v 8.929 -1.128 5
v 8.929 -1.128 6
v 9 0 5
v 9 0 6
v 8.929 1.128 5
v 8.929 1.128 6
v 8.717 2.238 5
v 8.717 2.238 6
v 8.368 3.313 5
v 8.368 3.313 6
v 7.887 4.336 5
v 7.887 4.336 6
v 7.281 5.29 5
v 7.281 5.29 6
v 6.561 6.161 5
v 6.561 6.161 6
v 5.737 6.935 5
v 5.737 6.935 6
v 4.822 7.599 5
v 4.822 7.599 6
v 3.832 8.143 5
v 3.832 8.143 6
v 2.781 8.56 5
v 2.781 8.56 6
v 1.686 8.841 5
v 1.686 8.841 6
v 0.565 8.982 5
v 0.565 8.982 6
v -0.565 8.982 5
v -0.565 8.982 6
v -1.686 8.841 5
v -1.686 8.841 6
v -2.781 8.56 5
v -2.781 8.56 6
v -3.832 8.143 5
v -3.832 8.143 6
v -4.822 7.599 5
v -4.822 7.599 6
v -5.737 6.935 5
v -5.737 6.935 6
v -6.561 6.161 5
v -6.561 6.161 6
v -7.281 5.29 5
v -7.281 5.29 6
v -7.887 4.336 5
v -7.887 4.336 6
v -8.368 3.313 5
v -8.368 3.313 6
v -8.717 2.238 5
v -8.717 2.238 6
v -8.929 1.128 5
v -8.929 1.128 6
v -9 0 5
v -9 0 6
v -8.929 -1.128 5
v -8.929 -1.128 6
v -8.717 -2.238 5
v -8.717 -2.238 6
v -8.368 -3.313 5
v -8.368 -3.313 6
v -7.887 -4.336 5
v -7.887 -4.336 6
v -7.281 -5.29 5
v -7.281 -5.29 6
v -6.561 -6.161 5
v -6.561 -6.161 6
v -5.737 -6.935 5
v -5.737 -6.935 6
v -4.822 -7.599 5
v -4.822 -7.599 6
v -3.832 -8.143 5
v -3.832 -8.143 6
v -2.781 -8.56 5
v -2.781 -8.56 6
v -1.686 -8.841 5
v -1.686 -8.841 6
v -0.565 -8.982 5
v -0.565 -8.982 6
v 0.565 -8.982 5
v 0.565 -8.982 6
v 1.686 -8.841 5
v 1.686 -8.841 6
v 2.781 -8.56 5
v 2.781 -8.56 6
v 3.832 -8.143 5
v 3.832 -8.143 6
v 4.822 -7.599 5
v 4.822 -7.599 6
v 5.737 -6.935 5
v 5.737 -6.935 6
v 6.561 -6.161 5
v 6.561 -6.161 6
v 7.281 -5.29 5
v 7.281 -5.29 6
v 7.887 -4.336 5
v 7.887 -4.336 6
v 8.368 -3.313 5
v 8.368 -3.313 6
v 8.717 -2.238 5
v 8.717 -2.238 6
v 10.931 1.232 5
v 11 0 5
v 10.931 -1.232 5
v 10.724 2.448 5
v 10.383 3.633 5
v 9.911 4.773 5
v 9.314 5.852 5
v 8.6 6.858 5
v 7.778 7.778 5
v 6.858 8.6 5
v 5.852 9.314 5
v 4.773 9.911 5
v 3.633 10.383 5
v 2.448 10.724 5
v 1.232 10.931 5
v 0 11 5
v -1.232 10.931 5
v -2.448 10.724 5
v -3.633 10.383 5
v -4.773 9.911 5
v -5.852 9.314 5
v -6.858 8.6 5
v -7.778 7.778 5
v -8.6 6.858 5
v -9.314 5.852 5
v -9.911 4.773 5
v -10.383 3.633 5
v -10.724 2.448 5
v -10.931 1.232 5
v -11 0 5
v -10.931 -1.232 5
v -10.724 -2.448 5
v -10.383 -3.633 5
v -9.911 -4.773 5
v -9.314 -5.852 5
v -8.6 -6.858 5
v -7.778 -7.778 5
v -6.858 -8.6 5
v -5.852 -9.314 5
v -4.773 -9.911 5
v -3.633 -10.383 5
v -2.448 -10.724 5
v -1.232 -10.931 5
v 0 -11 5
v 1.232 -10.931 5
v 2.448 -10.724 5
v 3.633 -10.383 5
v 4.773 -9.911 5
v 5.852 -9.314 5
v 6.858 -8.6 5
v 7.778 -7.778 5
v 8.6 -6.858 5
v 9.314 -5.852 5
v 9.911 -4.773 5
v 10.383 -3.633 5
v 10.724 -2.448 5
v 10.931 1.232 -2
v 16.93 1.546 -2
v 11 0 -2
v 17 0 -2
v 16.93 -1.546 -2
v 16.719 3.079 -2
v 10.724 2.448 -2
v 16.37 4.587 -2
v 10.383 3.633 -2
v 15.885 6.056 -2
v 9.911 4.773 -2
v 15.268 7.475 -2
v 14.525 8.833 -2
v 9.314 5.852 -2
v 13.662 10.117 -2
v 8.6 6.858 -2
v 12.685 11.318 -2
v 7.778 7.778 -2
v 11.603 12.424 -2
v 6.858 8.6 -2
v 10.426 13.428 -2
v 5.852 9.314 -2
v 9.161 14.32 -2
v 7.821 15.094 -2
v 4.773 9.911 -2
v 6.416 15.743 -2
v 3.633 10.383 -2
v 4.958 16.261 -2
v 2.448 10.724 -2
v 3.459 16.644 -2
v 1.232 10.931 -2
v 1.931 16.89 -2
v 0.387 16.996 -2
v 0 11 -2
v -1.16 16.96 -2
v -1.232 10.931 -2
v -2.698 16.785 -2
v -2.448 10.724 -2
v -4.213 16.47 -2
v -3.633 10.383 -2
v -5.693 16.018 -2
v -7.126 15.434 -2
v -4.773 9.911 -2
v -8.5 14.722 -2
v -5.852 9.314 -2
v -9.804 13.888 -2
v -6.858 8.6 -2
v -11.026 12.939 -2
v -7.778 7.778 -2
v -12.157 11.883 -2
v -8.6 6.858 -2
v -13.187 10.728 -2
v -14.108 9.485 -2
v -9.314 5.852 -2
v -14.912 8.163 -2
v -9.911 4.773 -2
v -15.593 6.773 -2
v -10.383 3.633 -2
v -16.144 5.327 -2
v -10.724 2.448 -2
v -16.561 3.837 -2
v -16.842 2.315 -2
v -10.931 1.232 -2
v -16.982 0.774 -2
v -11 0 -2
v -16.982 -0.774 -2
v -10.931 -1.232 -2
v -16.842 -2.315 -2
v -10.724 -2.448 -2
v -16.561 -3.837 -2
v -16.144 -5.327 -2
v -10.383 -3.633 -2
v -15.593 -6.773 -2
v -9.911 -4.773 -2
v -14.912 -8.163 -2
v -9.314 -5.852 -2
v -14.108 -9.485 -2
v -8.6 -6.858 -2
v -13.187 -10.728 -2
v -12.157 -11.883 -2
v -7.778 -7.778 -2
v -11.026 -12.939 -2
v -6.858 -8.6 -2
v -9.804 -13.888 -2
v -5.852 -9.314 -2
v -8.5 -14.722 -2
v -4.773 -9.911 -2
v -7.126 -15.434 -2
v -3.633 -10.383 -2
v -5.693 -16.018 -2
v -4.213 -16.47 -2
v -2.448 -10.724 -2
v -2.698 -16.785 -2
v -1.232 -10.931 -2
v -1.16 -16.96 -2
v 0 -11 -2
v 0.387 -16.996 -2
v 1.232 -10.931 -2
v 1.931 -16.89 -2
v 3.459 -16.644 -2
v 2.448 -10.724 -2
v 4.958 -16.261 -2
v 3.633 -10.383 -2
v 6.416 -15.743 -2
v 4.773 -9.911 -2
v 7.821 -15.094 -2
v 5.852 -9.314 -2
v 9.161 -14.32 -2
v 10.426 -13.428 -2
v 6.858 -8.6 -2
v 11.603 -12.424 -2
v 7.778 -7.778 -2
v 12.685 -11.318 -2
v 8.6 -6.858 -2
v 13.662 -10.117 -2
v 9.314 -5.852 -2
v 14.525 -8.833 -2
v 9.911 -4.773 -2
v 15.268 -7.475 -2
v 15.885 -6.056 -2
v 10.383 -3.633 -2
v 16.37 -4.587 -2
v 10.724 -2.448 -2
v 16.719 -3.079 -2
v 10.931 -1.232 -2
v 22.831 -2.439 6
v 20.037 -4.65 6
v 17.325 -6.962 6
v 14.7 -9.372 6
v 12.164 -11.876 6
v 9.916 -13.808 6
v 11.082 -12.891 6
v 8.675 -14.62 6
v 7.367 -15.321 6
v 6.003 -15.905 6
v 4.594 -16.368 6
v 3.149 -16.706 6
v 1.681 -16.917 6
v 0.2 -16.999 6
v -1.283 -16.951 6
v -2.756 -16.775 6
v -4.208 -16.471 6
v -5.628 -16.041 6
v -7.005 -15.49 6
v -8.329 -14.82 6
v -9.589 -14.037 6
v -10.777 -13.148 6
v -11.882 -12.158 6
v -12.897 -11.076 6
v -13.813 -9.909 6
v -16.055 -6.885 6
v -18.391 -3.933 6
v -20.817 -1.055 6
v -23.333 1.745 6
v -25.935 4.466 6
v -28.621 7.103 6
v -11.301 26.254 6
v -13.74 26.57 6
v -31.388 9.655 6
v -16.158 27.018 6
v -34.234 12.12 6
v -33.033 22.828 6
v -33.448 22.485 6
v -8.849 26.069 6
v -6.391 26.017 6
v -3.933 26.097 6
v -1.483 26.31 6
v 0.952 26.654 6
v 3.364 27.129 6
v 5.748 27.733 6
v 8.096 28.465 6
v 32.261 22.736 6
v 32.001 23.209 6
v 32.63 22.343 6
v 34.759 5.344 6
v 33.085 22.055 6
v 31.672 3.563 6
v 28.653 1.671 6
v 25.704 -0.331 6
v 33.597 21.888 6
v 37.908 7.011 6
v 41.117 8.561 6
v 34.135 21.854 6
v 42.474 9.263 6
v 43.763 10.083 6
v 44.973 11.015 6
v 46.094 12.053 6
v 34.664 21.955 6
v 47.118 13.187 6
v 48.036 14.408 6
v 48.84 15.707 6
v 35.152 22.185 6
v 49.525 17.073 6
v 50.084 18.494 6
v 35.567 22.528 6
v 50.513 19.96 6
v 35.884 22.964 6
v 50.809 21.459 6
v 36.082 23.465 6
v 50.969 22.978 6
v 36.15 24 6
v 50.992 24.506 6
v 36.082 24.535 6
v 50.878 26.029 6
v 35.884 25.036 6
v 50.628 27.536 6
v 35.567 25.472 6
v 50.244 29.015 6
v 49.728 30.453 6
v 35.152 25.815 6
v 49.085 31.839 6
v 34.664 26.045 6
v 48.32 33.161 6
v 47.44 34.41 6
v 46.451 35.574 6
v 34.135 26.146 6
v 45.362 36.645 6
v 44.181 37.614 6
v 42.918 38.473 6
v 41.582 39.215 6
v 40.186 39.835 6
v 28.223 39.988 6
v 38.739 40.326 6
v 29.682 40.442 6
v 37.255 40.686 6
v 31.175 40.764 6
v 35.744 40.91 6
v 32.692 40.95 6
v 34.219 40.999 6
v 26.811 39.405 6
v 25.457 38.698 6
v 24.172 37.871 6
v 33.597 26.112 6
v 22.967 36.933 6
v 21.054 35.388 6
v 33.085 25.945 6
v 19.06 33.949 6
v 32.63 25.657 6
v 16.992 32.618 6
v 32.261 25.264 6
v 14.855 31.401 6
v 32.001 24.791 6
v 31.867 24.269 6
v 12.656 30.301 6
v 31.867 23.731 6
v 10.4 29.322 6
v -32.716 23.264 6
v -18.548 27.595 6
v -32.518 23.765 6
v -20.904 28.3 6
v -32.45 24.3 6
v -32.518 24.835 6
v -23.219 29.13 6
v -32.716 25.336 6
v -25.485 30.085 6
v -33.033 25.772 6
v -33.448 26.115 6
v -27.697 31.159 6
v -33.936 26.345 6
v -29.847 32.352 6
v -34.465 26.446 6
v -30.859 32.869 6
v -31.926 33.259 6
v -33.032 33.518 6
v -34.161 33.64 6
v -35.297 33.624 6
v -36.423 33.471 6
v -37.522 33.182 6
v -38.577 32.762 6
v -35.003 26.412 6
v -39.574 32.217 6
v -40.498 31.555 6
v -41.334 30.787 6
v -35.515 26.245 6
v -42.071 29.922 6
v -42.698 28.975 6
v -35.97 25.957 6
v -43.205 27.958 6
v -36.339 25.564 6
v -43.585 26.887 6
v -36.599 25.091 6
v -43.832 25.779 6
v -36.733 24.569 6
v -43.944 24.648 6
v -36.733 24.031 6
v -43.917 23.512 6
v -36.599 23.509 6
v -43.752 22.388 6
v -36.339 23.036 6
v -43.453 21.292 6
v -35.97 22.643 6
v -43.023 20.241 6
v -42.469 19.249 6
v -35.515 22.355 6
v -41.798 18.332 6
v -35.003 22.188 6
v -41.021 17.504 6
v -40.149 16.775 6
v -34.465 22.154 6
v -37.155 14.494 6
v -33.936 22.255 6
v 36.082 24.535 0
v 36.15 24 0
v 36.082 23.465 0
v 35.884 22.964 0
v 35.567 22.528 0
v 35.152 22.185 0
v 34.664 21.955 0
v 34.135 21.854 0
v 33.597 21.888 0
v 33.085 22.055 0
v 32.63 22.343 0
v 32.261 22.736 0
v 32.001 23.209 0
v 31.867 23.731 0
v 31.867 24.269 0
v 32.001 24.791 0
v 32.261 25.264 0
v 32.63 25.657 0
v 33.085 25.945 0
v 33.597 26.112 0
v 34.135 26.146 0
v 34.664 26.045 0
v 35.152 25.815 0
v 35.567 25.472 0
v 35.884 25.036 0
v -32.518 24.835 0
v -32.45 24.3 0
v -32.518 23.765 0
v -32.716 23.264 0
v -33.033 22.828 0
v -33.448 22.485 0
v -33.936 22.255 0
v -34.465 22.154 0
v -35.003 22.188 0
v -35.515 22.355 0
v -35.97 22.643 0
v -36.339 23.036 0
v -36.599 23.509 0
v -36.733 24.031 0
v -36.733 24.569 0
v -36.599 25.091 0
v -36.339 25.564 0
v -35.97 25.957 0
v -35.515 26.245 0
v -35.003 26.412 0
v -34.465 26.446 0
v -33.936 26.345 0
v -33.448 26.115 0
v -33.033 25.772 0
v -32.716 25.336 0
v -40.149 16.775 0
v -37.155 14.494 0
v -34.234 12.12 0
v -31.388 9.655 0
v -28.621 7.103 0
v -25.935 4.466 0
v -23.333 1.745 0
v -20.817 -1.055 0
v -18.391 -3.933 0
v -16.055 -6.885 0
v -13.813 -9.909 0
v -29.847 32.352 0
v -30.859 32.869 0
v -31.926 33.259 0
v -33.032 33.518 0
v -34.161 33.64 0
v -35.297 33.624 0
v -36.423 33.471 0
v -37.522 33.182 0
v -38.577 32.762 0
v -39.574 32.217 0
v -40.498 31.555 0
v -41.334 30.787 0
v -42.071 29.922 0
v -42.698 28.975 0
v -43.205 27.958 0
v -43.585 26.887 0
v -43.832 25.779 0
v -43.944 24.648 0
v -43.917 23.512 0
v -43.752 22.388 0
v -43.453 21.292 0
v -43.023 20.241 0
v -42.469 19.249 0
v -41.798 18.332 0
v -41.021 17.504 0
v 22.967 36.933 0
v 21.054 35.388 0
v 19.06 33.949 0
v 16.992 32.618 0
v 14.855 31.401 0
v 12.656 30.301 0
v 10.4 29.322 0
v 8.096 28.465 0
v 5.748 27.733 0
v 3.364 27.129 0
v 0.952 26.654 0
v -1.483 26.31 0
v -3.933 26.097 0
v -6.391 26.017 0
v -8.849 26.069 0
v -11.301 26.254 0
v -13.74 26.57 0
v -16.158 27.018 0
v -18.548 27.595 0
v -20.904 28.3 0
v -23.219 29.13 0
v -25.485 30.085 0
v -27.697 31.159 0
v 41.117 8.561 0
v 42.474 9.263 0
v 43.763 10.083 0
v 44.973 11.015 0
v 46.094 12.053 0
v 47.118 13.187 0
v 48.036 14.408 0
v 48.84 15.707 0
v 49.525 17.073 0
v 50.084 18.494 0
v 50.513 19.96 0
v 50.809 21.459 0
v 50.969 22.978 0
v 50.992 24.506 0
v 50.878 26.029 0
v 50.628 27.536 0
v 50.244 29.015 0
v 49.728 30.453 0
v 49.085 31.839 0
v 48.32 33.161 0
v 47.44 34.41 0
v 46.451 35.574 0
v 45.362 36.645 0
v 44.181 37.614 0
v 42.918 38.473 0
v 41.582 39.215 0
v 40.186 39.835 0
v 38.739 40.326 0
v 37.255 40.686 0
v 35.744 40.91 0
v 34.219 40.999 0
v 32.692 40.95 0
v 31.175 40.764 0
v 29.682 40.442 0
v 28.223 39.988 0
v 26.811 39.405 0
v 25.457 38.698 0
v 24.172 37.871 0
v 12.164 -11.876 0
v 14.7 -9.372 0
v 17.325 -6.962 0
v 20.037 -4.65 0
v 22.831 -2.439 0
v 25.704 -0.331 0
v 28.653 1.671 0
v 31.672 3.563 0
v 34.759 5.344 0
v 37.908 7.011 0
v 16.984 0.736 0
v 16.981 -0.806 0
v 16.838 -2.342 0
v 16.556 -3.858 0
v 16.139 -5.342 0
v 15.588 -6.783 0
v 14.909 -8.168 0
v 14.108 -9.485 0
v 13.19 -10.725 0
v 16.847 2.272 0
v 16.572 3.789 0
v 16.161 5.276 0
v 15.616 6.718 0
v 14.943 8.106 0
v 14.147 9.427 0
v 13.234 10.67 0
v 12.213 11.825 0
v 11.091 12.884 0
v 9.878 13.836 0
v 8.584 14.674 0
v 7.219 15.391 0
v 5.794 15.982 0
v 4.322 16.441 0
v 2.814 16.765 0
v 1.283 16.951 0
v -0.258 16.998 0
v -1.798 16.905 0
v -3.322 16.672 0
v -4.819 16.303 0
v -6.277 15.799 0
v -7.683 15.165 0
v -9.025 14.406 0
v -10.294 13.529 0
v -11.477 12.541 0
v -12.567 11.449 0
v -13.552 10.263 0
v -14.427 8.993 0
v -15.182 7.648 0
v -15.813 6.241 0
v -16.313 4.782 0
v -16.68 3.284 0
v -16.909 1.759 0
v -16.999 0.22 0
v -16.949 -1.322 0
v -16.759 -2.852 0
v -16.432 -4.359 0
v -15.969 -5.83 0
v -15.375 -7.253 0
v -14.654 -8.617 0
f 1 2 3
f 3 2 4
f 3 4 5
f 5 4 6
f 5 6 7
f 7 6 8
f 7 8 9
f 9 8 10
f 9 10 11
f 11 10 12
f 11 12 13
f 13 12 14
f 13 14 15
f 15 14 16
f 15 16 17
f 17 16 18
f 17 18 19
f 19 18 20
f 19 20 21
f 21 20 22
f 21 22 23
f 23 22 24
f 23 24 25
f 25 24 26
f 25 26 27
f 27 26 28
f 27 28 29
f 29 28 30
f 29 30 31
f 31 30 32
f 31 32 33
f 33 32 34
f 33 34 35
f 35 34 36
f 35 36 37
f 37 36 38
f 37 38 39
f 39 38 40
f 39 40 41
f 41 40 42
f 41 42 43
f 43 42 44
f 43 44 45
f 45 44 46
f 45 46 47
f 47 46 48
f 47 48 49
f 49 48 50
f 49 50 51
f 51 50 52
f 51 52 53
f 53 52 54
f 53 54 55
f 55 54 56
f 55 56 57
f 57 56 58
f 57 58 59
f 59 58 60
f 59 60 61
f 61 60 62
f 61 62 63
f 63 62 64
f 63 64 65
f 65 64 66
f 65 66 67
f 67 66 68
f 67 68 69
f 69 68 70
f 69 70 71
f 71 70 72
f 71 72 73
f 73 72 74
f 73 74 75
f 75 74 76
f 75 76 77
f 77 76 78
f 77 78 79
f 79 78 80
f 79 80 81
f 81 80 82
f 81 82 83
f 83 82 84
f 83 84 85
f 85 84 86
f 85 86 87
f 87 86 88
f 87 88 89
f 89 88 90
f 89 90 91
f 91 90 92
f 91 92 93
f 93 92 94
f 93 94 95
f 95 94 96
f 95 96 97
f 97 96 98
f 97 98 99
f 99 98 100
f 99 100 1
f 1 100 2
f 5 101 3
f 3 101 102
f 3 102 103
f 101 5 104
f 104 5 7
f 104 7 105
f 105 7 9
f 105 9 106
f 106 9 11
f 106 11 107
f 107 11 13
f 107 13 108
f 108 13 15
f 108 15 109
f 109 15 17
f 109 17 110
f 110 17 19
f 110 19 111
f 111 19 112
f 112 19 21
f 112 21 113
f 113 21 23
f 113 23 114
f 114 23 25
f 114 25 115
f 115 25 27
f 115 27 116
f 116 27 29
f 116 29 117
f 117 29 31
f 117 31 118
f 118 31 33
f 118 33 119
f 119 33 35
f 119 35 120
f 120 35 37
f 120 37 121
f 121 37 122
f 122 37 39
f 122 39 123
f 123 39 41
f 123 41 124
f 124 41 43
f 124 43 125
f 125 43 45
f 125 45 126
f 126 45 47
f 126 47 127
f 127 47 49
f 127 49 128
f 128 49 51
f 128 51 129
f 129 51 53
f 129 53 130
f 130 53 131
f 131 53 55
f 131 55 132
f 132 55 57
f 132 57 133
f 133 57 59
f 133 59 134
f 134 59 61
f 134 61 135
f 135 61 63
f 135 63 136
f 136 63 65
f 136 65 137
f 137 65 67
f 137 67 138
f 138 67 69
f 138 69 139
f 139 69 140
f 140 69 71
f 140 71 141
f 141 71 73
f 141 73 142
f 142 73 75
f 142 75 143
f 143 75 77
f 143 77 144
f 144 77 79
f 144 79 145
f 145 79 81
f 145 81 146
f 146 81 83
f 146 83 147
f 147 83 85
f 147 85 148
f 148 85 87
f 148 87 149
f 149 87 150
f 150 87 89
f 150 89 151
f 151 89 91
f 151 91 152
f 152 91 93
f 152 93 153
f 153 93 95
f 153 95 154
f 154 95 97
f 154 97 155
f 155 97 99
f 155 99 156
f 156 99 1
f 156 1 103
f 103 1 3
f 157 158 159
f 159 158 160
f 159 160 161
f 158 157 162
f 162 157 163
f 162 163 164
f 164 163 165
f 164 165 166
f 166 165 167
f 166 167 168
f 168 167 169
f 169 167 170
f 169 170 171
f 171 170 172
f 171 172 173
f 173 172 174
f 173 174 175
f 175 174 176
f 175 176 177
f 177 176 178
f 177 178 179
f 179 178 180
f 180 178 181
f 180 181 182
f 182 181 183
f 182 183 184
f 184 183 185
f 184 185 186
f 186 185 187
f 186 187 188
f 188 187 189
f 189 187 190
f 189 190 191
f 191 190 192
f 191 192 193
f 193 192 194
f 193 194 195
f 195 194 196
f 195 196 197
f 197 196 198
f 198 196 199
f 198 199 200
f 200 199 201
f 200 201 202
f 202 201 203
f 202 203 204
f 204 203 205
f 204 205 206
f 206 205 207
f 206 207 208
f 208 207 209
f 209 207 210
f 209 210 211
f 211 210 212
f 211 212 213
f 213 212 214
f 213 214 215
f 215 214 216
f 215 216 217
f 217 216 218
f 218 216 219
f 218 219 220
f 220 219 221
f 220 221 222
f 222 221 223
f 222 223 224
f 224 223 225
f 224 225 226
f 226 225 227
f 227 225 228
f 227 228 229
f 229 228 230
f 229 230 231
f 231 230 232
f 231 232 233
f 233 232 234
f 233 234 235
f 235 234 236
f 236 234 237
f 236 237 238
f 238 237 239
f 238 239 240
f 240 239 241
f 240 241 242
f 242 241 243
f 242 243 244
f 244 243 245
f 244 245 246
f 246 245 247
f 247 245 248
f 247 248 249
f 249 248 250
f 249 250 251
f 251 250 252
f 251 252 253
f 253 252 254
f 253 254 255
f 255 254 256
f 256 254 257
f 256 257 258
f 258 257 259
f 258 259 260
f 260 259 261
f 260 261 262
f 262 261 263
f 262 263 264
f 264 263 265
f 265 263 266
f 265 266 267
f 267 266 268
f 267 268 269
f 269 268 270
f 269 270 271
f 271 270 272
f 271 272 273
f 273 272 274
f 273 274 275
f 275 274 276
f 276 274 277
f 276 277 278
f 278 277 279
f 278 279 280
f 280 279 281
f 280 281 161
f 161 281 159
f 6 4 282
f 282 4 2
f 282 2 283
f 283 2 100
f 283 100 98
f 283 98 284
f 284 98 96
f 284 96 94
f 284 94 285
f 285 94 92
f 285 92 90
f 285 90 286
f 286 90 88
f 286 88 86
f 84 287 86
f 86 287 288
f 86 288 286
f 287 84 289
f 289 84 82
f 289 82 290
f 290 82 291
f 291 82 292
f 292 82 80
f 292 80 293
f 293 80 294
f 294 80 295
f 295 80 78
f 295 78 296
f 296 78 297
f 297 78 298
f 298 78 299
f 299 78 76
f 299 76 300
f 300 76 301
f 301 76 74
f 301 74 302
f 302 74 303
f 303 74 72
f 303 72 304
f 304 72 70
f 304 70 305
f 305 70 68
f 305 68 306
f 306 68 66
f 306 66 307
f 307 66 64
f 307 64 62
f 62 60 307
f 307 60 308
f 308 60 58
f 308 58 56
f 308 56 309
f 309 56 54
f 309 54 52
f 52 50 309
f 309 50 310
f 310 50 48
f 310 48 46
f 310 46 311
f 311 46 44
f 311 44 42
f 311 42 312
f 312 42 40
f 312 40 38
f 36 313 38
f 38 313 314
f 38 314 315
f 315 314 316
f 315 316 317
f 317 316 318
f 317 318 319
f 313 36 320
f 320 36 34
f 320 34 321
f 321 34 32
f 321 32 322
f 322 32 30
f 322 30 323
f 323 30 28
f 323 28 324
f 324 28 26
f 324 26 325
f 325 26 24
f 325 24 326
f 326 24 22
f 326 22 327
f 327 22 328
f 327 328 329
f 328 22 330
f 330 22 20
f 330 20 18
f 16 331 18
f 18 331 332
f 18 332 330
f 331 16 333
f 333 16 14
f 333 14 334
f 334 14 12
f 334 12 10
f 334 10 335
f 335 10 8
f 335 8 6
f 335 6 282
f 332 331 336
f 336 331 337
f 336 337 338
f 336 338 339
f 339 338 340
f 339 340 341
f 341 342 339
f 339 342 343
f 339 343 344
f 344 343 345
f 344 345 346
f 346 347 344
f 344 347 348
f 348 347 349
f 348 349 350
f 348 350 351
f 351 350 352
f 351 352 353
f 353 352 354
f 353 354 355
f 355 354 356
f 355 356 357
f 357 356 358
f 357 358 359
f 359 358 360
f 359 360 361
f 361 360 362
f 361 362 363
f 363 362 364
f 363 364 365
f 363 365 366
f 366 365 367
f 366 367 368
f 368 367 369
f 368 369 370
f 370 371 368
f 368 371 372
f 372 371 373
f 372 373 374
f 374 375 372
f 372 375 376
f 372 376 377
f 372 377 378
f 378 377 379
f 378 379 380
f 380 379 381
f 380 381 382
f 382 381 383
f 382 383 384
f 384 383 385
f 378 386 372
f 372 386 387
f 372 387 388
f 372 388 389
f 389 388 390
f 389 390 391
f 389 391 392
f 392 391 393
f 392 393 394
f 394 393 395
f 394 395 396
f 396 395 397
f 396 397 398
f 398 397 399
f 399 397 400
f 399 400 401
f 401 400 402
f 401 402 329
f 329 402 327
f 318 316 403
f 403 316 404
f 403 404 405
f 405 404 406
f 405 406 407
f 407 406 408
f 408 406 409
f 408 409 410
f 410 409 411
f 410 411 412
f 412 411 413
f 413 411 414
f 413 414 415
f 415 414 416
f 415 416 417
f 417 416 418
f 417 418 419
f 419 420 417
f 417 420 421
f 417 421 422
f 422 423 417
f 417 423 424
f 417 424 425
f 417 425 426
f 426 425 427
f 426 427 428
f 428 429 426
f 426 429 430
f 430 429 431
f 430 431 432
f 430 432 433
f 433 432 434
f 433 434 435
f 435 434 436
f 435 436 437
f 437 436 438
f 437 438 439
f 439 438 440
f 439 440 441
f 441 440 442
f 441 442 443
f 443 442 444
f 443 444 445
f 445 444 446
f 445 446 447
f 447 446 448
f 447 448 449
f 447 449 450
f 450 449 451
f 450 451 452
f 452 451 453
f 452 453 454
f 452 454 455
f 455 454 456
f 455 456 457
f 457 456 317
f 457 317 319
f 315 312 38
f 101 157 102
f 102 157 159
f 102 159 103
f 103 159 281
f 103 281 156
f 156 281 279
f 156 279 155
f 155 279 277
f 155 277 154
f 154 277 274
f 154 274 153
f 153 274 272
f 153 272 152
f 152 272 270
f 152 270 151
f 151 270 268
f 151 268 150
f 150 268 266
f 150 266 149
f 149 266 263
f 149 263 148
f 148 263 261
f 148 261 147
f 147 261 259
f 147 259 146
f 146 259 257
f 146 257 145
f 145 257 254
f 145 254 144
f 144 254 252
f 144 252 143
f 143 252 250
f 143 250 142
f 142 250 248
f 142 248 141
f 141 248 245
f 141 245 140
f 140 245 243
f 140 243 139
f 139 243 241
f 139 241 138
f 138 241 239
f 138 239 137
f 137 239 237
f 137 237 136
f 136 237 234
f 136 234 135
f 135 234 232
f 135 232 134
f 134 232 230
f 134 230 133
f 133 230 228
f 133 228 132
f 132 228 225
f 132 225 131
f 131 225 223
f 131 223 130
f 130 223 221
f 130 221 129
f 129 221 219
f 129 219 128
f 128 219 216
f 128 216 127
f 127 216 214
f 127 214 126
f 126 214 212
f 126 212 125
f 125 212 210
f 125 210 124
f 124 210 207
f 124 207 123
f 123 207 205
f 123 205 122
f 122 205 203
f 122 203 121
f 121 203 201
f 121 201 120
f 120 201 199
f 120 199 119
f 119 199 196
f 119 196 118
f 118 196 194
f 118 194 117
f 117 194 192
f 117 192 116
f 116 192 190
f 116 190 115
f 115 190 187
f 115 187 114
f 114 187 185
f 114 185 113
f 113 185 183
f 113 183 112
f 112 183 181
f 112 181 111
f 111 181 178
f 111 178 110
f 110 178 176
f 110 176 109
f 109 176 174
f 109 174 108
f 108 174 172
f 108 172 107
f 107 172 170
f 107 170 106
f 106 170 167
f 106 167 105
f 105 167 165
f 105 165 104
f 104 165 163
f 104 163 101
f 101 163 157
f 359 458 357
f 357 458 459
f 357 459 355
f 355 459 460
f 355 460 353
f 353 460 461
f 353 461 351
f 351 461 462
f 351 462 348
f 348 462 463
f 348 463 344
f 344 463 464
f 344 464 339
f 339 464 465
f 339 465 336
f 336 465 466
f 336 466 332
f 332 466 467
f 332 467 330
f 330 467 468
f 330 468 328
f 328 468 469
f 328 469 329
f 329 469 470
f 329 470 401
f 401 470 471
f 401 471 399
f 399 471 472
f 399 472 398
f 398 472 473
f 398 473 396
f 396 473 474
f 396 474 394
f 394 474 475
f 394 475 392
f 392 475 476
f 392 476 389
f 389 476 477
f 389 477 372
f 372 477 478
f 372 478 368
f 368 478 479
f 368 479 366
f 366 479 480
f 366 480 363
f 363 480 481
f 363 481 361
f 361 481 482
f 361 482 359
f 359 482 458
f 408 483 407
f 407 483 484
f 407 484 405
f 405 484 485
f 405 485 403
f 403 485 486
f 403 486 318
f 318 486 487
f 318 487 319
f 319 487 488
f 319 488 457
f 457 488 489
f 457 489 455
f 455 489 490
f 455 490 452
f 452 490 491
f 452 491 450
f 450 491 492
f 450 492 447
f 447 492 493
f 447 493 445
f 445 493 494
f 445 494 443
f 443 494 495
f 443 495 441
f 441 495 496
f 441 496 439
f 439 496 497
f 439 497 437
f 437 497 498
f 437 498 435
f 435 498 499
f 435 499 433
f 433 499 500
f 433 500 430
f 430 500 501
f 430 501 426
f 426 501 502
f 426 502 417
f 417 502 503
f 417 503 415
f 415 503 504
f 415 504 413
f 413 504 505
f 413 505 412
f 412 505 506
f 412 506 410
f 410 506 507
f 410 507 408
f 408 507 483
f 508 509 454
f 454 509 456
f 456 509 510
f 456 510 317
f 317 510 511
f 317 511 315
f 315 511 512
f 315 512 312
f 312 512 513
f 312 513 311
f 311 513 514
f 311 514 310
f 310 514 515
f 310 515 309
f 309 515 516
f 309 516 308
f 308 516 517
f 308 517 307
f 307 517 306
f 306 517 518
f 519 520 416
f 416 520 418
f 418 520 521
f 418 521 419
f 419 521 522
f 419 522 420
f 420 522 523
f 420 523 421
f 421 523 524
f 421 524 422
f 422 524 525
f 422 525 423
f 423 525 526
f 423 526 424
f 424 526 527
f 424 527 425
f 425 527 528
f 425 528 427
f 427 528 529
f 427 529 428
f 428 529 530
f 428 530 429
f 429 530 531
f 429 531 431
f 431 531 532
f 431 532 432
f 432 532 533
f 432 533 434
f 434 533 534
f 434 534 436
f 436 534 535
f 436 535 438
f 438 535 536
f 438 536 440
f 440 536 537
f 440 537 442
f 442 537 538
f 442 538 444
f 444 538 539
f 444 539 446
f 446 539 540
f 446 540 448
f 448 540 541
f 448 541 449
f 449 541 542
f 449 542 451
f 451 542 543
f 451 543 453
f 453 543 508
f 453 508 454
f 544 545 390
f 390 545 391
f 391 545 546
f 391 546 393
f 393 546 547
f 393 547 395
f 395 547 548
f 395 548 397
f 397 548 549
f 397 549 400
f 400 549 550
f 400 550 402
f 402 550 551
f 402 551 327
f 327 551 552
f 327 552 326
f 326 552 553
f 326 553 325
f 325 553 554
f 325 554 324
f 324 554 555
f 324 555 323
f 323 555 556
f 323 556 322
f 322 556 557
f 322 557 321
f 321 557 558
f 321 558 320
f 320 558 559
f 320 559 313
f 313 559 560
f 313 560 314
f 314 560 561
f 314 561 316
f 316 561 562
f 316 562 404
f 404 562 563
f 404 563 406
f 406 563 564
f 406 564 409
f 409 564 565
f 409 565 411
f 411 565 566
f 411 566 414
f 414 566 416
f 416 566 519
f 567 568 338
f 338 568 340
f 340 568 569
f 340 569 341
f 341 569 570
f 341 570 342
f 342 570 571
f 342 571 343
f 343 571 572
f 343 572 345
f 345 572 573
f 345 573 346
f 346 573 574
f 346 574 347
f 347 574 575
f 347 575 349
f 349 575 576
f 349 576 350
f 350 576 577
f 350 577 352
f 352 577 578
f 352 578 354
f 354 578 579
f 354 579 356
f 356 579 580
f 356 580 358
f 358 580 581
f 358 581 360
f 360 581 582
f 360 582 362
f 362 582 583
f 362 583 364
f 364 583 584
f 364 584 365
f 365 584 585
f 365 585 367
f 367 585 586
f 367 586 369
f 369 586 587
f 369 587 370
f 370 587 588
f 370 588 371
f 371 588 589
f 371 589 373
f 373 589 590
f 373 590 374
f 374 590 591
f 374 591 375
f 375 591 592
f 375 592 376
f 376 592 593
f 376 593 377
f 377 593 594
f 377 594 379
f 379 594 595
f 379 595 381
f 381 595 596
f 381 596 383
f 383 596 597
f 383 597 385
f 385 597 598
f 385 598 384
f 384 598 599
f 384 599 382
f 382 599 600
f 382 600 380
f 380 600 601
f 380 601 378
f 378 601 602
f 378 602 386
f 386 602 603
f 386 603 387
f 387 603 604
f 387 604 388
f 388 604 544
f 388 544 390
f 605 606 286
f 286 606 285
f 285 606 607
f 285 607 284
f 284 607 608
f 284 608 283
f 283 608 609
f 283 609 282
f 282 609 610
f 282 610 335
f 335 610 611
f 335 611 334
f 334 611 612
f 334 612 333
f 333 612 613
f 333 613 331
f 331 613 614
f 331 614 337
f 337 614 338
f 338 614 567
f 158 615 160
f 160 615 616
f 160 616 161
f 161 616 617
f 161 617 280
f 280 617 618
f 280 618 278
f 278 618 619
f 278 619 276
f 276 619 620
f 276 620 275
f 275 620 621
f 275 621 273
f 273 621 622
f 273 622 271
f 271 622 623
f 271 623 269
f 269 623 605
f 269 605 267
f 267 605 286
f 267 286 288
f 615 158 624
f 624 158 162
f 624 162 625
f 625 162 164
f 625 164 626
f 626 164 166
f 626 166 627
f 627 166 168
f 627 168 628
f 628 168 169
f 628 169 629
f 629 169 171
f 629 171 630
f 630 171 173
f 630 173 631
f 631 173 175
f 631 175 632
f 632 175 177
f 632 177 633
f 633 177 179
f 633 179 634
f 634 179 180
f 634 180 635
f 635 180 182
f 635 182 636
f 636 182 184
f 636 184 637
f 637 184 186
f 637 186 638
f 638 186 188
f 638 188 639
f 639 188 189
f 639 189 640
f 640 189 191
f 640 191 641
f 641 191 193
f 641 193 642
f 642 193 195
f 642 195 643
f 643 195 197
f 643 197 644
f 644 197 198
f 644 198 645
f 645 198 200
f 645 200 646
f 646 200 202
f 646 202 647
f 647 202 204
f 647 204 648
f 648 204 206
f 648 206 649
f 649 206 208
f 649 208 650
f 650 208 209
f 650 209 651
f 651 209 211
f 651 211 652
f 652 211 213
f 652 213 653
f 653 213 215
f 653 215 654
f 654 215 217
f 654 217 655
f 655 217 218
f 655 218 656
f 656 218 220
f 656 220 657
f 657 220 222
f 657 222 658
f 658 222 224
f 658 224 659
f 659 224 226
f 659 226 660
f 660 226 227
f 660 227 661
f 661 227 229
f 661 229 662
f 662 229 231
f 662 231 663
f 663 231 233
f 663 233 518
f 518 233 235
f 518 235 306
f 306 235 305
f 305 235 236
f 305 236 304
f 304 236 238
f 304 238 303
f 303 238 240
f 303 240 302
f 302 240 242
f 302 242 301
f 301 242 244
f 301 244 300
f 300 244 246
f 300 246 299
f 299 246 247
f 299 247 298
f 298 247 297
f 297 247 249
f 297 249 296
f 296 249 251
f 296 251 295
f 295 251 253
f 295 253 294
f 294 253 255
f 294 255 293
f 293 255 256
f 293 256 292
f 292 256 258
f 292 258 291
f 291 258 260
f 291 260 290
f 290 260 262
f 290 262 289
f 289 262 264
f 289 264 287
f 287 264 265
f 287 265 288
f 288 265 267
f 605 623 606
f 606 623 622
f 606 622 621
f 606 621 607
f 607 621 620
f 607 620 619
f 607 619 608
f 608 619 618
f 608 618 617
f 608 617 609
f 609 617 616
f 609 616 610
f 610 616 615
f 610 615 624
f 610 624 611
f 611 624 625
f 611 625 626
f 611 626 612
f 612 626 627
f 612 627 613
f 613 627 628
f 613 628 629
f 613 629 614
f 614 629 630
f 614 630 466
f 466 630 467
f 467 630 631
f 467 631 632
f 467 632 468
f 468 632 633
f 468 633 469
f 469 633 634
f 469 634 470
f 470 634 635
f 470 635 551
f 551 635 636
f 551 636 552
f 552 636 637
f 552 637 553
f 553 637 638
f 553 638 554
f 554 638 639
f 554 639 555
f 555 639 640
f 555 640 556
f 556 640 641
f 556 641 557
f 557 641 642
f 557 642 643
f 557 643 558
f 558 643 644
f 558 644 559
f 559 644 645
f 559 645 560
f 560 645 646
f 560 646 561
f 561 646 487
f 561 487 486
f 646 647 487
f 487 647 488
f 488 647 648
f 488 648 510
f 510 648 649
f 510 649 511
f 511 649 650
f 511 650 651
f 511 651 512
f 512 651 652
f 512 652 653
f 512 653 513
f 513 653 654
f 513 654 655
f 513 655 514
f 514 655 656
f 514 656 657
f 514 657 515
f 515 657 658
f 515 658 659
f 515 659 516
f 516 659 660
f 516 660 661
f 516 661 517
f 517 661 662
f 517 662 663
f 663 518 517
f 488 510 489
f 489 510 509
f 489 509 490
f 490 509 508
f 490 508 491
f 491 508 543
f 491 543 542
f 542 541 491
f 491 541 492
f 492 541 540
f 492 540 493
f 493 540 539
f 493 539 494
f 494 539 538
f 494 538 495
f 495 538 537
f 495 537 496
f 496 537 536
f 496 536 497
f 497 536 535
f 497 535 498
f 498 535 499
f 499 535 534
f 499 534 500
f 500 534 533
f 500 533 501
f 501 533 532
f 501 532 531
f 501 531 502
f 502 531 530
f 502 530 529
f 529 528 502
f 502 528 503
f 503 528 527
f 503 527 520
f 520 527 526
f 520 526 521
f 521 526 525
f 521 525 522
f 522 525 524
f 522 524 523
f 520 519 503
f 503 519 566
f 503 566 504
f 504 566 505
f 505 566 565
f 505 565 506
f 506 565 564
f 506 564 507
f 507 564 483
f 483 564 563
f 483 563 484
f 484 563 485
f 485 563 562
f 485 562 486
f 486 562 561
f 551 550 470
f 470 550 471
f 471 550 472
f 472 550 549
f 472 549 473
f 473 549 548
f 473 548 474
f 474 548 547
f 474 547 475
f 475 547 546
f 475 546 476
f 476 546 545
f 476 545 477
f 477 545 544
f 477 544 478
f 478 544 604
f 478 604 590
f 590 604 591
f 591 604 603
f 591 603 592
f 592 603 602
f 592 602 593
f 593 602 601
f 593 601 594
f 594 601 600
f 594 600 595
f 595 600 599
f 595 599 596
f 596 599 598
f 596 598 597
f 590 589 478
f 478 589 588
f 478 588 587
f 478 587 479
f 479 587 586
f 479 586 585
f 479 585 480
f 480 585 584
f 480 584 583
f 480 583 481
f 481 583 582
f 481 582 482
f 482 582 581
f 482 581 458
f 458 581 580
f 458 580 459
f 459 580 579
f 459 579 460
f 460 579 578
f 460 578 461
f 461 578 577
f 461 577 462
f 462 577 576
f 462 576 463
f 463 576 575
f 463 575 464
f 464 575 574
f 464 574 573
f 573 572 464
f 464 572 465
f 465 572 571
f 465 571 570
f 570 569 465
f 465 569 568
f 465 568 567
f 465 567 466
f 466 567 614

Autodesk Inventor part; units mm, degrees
ref_plane "YZ Plane" through (0, 0, 0) normal (1, 0, 0) x (0, 1, 0)
ref_plane "XZ Plane" through (0, 0, 0) normal (0, 1, 0) x (-1, 0, 0)
ref_plane "XY Plane" through (0, 0, 0) normal (0, 0, 1) x (1, 0, 0)
sketch "Sketch1" plane through (0, 0, 0) normal (0, 0, 1) x (1, 0, 0)
  circle A0 centre (0, 0) radius 11
  circle A1 centre (-34.6, 24.3) radius 2.15
  circle A2 centre (34, 24) radius 2.15
  arc A3 (-29.8472, 32.3519) -> (-40.1494, 16.7749) centre (-34.6, 24.3) ccw
  arc A4 (41.1168, 8.5614) -> (22.9667, 36.9332) centre (34, 24) ccw
  arc A5 (-13.8132, -9.9093) -> (12.164, -11.8759) centre (0, 0) ccw
  arc A6 (-13.8132, -9.9093) -> (-40.1494, 16.7749) centre (-111.5168, -80) ccw
  arc A7 (41.1168, 8.5614) -> (12.164, -11.8759) centre (81.9412, -80) ccw
  arc A8 (-29.8472, 32.3519) -> (22.9667, 36.9332) centre (-6.6504, 71.6502) ccw
  line L0 (-111.5168, -80) -> (81.9412, -80) construction
  dimension "d0" = 22
  dimension "d1" = 4.3
  dimension "d2" = 4.3
  dimension "d4" = 34
  dimension "d5" = 34.6
  dimension "d6" = 7.2
  dimension "d8" = 6
  dimension "d9" = 80
  dimension "d16" = 24.3
  dimension "d17" = 24
  dimension "d20" = 17
extrude "Extrusion1" add sketch "Sketch1" along normal blind 6
sketch "Sketch2" plane through (0, 0, 6) normal (0, 0, 1) x (1, 0, 0)
  circle A0 centre (0, 0) radius 11 projected
  arc A1 (-13.8132, -9.9093) -> (12.164, -11.8759) centre (0, 0) ccw projected
  circle A2 centre (0, 0) radius 17
  circle A3 centre (0, 0) radius 11
extrude "Extrusion2" add sketch "Sketch2" against normal blind 8
sketch "Sketch3" plane through (0, 0, 6) normal (0, 0, 1) x (1, 0, 0)
  circle A0 centre (0, 0) radius 11 projected
  circle A1 centre (0, 0) radius 9
  dimension "d21" = 18
extrude "Extrusion3" add sketch "Sketch3" against normal blind 1
equation "\"d2\" = d1"
properties part number "Arm 19X - parallel hinge"
